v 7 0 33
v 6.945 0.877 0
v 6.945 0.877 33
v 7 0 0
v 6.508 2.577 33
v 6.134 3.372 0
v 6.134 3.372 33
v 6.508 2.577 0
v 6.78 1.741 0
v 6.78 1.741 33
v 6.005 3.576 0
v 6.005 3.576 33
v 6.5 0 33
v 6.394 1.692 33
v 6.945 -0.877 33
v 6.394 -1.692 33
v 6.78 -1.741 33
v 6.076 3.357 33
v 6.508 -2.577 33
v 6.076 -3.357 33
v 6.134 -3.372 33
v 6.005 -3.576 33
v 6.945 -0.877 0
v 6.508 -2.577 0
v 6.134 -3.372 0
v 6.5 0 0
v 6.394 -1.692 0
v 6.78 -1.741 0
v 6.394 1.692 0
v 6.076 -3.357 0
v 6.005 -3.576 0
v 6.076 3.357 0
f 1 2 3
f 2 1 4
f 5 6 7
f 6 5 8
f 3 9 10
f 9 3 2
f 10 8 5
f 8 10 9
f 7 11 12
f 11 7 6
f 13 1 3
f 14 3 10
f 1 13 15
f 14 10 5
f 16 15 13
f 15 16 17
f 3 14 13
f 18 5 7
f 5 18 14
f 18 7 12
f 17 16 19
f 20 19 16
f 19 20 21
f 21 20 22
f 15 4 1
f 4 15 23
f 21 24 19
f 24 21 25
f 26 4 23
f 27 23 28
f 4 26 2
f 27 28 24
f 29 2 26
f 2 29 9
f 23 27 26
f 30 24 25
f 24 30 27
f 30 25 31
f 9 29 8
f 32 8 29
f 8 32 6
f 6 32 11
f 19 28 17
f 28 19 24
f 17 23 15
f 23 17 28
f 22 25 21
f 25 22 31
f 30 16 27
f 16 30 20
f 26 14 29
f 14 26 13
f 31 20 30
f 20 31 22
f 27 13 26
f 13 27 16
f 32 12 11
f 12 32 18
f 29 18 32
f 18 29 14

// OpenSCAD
$fn = 50;


difference() {
	union() {
		cylinder(h = 33, r = 7.0000000000);
		translate(v = [-10.0000000000, 0, 0]) {
			cylinder(h = 33, r = 7.0000000000);
		}
	}
	union() {
		cylinder(h = 33, r = 3.2500000000);
		cylinder(h = 33, r = 1.8000000000);
		cylinder(h = 33, r = 1.8000000000);
		cylinder(h = 33, r = 1.8000000000);
		translate(v = [-14.5000000000, 0, 0]) {
			hull() {
				translate(v = [-3.7500000000, 0.0000000000, 0]) {
					cylinder(h = 33, r = 10.5000000000);
				}
				translate(v = [3.7500000000, 0.0000000000, 0]) {
					cylinder(h = 33, r = 10.5000000000);
				}
				translate(v = [-3.7500000000, -0.0000000000, 0]) {
					cylinder(h = 33, r = 10.5000000000);
				}
				translate(v = [3.7500000000, -0.0000000000, 0]) {
					cylinder(h = 33, r = 10.5000000000);
				}
			}
		}
		translate(v = [-7.0000000000, 0, 0.0000000000]) {
			cylinder(h = 33, r = 13.5000000000);
		}
	}
}
